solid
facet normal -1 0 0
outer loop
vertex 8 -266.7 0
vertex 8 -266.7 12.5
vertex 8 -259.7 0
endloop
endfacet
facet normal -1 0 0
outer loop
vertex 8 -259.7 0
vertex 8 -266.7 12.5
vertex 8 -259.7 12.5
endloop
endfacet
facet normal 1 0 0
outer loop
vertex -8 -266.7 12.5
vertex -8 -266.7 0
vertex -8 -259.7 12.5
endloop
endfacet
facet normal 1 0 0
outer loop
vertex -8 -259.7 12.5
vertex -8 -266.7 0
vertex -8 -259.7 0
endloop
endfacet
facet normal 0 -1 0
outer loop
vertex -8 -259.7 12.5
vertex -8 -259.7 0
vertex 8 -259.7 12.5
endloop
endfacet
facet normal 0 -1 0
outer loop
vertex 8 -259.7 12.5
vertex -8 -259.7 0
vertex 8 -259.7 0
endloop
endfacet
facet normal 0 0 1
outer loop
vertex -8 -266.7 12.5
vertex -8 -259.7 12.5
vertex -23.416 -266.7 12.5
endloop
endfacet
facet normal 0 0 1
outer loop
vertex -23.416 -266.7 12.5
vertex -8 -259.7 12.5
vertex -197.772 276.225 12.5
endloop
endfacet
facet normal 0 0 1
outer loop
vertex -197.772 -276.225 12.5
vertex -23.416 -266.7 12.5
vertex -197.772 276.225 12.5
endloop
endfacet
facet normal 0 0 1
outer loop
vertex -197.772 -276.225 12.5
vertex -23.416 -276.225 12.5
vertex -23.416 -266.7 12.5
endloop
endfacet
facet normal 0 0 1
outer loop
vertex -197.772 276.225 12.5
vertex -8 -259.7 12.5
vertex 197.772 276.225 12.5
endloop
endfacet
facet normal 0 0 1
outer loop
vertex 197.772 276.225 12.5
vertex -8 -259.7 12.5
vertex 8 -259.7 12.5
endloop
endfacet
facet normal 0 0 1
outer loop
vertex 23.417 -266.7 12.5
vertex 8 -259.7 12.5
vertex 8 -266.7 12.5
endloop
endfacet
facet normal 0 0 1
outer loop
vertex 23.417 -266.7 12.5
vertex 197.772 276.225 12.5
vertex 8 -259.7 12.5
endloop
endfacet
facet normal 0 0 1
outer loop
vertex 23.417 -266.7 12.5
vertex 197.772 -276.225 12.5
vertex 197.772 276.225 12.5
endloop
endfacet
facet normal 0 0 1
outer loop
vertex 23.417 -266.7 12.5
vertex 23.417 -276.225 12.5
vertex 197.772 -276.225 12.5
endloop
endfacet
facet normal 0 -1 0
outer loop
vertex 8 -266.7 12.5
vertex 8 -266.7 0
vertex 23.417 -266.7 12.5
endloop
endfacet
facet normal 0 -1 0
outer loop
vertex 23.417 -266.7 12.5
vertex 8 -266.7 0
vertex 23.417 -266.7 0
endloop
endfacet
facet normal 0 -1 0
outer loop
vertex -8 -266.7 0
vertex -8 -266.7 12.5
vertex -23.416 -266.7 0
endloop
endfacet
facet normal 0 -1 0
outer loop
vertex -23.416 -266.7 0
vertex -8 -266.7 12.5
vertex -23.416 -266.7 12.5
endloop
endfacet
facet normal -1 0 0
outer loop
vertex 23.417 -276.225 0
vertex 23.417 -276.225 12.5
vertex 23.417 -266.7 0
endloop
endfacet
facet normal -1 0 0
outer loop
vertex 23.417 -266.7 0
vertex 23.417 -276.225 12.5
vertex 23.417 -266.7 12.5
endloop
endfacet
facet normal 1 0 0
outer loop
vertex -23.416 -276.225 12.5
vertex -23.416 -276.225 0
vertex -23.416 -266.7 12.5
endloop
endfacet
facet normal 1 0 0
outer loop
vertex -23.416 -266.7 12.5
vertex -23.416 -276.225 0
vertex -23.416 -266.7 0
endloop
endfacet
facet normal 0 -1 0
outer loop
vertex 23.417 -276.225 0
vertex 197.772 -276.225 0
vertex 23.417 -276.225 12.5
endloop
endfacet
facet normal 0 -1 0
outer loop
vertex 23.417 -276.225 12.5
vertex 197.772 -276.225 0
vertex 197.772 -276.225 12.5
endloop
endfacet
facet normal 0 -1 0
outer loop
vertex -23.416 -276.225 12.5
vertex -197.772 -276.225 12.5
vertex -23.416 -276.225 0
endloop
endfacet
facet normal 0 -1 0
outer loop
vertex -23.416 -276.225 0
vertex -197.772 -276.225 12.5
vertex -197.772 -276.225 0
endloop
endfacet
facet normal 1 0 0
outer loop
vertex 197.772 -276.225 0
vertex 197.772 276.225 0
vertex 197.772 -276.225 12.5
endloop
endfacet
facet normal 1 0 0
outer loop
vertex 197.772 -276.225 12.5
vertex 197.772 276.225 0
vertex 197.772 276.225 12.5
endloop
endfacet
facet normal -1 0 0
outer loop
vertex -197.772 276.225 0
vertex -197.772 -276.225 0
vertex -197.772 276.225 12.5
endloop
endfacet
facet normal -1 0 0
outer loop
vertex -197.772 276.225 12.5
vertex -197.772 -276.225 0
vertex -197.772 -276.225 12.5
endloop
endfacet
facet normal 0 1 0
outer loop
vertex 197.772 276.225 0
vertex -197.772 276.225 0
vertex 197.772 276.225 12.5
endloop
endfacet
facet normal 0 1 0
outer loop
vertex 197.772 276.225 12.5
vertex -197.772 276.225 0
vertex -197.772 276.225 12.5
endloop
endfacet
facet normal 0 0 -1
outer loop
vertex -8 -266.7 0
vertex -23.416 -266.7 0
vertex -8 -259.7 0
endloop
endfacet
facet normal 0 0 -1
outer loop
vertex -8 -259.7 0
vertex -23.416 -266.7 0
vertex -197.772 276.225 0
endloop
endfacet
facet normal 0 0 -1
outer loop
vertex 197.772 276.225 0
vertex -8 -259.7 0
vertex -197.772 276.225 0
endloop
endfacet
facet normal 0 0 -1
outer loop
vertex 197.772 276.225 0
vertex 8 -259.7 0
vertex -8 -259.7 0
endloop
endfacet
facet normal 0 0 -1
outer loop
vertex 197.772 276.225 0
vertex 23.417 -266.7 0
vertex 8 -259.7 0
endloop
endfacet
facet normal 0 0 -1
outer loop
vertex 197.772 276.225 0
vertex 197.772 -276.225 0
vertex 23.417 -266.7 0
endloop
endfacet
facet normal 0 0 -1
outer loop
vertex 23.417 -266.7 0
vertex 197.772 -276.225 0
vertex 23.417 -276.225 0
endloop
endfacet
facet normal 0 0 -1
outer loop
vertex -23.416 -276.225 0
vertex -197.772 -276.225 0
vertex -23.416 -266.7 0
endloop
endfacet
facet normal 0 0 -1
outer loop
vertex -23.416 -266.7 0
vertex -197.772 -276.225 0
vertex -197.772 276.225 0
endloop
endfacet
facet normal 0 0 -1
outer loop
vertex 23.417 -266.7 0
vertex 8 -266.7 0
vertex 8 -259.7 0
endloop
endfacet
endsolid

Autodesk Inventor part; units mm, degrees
ref_plane "YZ Plane" through (0, 0, 0) normal (1, 0, 0) x (0, 1, 0)
ref_plane "XZ Plane" through (0, 0, 0) normal (0, 1, 0) x (-1, 0, 0)
ref_plane "XY Plane" through (0, 0, 0) normal (0, 0, 1) x (1, 0, 0)
sketch "Sketch1" plane through (0, 0, 0) normal (0, 0, 1) x (1, 0, 0)
  line L0 (-197.772, 276.225) -> (197.772, 276.225)
  line L1 (197.772, 276.225) -> (197.772, -276.225)
  line L2 (197.772, -276.225) -> (-197.772, -276.225)
  line L3 (-197.772, -276.225) -> (-197.772, 276.225)
  point P0 (0, 0)
  point P1 (-197.772, 0)
  point P2 (0, 276.225)
  dimension "d0" = 395.544
  dimension "d2" = 552.45
extrude "Extrusion1" add sketch "Sketch1" along normal blind 12.5
sketch "Sketch2" plane through (-197.772, -276.225, 0) normal (0, -1, 0) x (1, 0, 0)
  line L0 (395.544, 0) -> (0, 0) projected
  line L1 (0, 12.5) -> (395.544, 12.5) projected
  circle A0 centre (322.7721, -216.5151) radius 4.1 projected
  circle A1 centre (72.7721, -216.5151) radius 4.1 projected
  circle A2 centre (197.7721, -0.0087) radius 4.1 projected
  arc A3 (204.0221, 10.8166) -> (191.5221, 10.8166) centre (197.7721, -0.0087) ccw projected
  arc A4 (335.2721, -216.5151) -> (204.0221, 10.8166) centre (72.7721, -216.5151) ccw projected
  arc A5 (329.0221, -227.3404) -> (335.2721, -216.5151) centre (322.7721, -216.5151) ccw projected
  arc A6 (66.5221, -227.3404) -> (329.0221, -227.3404) centre (197.7721, -0.0087) ccw projected
  arc A7 (60.2721, -216.5151) -> (66.5221, -227.3404) centre (72.7721, -216.5151) ccw projected
  arc A8 (191.5221, 10.8166) -> (60.2721, -216.5151) centre (322.7721, -216.5151) ccw projected
  line L2 (174.3556, 0) -> (174.3556, 12.5)
  line L3 (221.1887, 0) -> (221.1887, 12.5)
  point P0 (197.772, 0)
extrude "Extrusion2" cut sketch "Sketch2" against normal blind 9.525 contours L0 A2 A8 A3 A4 | A4 A3 A8 L2 L1 L3 | L0 A2 picked at (197.9366, 1.3538)
sketch "Sketch3" plane through (-197.772, -266.7, 0) normal (0, -1, 0) x (1, 0, 0)
  line L0 (221.1887, 0) -> (174.3556, 0) projected
  line L1 (174.3556, 12.5) -> (221.1887, 12.5) projected
  circle A0 centre (197.7721, -0.0087) radius 8 projected
  line L2 (189.7721, 0) -> (189.7721, 12.5)
  line L3 (205.7721, 0) -> (205.7721, 12.5)
  point P0 (197.772, 0)
  point P1 (190.2666, -0.0087)
  point P2 (205.2777, -0.0087)
extrude "Extrusion3" cut sketch "Sketch3" against normal blind 7 contours L0 A0 | A0 L2 L1 L3 picked at (198.0933, 3.9197)
properties part number "side board"
